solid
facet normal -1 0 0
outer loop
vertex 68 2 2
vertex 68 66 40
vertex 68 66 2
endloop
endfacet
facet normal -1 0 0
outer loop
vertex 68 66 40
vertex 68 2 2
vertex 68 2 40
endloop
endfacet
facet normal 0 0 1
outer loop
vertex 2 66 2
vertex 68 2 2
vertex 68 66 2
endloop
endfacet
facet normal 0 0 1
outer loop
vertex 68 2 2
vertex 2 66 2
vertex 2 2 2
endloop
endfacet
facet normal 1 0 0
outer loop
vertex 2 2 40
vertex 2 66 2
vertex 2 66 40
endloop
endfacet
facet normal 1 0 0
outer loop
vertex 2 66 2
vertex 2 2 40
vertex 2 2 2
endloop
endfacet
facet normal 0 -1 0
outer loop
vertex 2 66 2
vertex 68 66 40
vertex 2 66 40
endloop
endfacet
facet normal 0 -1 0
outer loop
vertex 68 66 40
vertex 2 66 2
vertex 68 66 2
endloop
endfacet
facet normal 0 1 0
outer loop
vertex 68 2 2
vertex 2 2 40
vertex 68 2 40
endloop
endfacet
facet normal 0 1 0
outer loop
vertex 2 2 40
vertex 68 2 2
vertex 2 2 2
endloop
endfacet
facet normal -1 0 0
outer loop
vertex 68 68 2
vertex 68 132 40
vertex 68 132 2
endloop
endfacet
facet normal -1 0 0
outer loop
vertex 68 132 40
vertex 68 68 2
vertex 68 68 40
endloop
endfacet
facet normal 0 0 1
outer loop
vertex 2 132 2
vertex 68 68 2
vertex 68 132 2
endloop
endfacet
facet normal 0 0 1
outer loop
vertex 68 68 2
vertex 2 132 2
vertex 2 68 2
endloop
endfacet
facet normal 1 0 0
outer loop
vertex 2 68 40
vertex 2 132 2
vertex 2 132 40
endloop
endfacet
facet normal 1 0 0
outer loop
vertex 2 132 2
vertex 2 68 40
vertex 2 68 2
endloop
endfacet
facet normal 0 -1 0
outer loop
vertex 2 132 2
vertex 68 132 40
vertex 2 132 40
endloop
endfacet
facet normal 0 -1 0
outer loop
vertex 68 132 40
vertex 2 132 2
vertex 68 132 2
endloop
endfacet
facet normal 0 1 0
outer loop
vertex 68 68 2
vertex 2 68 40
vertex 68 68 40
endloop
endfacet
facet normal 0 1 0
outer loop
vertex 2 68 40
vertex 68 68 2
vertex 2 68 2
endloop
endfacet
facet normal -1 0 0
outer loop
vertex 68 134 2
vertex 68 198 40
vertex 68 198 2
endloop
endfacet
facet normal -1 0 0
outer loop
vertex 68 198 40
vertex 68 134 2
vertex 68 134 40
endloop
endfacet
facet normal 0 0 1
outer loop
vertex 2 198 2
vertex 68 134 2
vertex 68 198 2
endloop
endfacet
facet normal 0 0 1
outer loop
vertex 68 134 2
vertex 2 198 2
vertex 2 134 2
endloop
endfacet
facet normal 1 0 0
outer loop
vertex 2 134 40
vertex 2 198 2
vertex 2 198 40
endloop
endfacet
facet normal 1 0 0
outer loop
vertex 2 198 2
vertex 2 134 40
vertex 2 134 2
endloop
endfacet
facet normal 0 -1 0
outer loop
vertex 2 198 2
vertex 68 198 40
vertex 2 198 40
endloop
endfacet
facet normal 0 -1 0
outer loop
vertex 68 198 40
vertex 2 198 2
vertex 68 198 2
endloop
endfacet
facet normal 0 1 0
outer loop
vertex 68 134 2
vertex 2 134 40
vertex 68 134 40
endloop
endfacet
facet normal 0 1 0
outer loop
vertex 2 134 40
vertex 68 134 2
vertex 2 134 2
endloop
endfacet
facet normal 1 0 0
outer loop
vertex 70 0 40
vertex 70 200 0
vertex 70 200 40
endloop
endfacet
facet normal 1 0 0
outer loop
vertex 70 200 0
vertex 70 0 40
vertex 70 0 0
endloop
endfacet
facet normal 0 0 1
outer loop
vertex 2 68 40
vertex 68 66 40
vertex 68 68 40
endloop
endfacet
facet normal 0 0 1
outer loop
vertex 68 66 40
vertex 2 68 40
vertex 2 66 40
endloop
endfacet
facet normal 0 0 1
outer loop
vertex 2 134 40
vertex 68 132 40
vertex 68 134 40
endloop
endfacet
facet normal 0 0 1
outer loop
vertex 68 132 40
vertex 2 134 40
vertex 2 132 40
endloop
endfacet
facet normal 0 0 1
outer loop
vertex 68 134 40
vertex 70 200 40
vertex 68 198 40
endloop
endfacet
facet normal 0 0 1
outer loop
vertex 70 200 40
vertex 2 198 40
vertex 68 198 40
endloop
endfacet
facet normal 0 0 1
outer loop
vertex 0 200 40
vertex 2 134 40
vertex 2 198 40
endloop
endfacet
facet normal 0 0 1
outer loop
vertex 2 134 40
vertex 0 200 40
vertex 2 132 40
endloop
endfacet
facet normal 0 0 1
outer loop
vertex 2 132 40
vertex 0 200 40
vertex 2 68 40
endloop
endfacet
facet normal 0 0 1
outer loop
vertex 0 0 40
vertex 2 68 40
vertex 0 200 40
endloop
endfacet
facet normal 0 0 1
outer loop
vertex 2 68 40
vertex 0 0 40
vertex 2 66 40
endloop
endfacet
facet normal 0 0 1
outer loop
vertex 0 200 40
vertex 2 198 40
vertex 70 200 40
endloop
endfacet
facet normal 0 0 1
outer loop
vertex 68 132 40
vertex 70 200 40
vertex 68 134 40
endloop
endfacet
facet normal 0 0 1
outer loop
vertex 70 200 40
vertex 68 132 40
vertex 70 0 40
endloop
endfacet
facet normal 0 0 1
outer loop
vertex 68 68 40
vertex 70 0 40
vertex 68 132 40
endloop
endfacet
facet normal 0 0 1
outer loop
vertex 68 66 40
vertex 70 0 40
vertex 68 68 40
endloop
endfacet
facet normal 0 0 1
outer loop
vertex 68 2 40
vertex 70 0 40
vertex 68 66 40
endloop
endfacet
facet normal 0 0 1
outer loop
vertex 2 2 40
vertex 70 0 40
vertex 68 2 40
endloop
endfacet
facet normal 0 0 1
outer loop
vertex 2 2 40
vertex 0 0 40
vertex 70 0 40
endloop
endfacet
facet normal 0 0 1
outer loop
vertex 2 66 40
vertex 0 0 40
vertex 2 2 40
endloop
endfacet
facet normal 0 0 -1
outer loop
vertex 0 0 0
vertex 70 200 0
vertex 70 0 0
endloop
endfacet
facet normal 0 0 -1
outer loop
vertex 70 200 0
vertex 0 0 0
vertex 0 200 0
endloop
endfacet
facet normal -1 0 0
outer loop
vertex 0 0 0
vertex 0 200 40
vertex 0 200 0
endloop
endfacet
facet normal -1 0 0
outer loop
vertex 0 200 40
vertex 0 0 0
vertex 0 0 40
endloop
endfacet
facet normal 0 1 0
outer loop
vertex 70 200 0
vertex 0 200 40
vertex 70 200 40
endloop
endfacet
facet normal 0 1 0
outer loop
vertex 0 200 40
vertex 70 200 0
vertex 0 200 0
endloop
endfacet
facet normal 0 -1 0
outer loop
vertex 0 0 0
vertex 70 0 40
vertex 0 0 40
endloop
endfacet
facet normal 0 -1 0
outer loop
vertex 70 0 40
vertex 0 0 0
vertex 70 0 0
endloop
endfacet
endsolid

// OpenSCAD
// Parametric spice box
width = 70;
depth = 200;
height = 40;
thickness = 2;
compartments = 3; // number of compartments in the depth direction

// Derived values
compartmentWidth = width - 2 * thickness;
compartmentDepth = (depth - (compartments + 1) * thickness) / compartments;

difference() {
    cube([width, depth, height]);

    for (i = [0 : compartments - 1]) {
        translate([
            thickness,
            thickness + i * (compartmentDepth + thickness),
            thickness
        ])
        cube([compartmentWidth, compartmentDepth, height]);
    }
}
